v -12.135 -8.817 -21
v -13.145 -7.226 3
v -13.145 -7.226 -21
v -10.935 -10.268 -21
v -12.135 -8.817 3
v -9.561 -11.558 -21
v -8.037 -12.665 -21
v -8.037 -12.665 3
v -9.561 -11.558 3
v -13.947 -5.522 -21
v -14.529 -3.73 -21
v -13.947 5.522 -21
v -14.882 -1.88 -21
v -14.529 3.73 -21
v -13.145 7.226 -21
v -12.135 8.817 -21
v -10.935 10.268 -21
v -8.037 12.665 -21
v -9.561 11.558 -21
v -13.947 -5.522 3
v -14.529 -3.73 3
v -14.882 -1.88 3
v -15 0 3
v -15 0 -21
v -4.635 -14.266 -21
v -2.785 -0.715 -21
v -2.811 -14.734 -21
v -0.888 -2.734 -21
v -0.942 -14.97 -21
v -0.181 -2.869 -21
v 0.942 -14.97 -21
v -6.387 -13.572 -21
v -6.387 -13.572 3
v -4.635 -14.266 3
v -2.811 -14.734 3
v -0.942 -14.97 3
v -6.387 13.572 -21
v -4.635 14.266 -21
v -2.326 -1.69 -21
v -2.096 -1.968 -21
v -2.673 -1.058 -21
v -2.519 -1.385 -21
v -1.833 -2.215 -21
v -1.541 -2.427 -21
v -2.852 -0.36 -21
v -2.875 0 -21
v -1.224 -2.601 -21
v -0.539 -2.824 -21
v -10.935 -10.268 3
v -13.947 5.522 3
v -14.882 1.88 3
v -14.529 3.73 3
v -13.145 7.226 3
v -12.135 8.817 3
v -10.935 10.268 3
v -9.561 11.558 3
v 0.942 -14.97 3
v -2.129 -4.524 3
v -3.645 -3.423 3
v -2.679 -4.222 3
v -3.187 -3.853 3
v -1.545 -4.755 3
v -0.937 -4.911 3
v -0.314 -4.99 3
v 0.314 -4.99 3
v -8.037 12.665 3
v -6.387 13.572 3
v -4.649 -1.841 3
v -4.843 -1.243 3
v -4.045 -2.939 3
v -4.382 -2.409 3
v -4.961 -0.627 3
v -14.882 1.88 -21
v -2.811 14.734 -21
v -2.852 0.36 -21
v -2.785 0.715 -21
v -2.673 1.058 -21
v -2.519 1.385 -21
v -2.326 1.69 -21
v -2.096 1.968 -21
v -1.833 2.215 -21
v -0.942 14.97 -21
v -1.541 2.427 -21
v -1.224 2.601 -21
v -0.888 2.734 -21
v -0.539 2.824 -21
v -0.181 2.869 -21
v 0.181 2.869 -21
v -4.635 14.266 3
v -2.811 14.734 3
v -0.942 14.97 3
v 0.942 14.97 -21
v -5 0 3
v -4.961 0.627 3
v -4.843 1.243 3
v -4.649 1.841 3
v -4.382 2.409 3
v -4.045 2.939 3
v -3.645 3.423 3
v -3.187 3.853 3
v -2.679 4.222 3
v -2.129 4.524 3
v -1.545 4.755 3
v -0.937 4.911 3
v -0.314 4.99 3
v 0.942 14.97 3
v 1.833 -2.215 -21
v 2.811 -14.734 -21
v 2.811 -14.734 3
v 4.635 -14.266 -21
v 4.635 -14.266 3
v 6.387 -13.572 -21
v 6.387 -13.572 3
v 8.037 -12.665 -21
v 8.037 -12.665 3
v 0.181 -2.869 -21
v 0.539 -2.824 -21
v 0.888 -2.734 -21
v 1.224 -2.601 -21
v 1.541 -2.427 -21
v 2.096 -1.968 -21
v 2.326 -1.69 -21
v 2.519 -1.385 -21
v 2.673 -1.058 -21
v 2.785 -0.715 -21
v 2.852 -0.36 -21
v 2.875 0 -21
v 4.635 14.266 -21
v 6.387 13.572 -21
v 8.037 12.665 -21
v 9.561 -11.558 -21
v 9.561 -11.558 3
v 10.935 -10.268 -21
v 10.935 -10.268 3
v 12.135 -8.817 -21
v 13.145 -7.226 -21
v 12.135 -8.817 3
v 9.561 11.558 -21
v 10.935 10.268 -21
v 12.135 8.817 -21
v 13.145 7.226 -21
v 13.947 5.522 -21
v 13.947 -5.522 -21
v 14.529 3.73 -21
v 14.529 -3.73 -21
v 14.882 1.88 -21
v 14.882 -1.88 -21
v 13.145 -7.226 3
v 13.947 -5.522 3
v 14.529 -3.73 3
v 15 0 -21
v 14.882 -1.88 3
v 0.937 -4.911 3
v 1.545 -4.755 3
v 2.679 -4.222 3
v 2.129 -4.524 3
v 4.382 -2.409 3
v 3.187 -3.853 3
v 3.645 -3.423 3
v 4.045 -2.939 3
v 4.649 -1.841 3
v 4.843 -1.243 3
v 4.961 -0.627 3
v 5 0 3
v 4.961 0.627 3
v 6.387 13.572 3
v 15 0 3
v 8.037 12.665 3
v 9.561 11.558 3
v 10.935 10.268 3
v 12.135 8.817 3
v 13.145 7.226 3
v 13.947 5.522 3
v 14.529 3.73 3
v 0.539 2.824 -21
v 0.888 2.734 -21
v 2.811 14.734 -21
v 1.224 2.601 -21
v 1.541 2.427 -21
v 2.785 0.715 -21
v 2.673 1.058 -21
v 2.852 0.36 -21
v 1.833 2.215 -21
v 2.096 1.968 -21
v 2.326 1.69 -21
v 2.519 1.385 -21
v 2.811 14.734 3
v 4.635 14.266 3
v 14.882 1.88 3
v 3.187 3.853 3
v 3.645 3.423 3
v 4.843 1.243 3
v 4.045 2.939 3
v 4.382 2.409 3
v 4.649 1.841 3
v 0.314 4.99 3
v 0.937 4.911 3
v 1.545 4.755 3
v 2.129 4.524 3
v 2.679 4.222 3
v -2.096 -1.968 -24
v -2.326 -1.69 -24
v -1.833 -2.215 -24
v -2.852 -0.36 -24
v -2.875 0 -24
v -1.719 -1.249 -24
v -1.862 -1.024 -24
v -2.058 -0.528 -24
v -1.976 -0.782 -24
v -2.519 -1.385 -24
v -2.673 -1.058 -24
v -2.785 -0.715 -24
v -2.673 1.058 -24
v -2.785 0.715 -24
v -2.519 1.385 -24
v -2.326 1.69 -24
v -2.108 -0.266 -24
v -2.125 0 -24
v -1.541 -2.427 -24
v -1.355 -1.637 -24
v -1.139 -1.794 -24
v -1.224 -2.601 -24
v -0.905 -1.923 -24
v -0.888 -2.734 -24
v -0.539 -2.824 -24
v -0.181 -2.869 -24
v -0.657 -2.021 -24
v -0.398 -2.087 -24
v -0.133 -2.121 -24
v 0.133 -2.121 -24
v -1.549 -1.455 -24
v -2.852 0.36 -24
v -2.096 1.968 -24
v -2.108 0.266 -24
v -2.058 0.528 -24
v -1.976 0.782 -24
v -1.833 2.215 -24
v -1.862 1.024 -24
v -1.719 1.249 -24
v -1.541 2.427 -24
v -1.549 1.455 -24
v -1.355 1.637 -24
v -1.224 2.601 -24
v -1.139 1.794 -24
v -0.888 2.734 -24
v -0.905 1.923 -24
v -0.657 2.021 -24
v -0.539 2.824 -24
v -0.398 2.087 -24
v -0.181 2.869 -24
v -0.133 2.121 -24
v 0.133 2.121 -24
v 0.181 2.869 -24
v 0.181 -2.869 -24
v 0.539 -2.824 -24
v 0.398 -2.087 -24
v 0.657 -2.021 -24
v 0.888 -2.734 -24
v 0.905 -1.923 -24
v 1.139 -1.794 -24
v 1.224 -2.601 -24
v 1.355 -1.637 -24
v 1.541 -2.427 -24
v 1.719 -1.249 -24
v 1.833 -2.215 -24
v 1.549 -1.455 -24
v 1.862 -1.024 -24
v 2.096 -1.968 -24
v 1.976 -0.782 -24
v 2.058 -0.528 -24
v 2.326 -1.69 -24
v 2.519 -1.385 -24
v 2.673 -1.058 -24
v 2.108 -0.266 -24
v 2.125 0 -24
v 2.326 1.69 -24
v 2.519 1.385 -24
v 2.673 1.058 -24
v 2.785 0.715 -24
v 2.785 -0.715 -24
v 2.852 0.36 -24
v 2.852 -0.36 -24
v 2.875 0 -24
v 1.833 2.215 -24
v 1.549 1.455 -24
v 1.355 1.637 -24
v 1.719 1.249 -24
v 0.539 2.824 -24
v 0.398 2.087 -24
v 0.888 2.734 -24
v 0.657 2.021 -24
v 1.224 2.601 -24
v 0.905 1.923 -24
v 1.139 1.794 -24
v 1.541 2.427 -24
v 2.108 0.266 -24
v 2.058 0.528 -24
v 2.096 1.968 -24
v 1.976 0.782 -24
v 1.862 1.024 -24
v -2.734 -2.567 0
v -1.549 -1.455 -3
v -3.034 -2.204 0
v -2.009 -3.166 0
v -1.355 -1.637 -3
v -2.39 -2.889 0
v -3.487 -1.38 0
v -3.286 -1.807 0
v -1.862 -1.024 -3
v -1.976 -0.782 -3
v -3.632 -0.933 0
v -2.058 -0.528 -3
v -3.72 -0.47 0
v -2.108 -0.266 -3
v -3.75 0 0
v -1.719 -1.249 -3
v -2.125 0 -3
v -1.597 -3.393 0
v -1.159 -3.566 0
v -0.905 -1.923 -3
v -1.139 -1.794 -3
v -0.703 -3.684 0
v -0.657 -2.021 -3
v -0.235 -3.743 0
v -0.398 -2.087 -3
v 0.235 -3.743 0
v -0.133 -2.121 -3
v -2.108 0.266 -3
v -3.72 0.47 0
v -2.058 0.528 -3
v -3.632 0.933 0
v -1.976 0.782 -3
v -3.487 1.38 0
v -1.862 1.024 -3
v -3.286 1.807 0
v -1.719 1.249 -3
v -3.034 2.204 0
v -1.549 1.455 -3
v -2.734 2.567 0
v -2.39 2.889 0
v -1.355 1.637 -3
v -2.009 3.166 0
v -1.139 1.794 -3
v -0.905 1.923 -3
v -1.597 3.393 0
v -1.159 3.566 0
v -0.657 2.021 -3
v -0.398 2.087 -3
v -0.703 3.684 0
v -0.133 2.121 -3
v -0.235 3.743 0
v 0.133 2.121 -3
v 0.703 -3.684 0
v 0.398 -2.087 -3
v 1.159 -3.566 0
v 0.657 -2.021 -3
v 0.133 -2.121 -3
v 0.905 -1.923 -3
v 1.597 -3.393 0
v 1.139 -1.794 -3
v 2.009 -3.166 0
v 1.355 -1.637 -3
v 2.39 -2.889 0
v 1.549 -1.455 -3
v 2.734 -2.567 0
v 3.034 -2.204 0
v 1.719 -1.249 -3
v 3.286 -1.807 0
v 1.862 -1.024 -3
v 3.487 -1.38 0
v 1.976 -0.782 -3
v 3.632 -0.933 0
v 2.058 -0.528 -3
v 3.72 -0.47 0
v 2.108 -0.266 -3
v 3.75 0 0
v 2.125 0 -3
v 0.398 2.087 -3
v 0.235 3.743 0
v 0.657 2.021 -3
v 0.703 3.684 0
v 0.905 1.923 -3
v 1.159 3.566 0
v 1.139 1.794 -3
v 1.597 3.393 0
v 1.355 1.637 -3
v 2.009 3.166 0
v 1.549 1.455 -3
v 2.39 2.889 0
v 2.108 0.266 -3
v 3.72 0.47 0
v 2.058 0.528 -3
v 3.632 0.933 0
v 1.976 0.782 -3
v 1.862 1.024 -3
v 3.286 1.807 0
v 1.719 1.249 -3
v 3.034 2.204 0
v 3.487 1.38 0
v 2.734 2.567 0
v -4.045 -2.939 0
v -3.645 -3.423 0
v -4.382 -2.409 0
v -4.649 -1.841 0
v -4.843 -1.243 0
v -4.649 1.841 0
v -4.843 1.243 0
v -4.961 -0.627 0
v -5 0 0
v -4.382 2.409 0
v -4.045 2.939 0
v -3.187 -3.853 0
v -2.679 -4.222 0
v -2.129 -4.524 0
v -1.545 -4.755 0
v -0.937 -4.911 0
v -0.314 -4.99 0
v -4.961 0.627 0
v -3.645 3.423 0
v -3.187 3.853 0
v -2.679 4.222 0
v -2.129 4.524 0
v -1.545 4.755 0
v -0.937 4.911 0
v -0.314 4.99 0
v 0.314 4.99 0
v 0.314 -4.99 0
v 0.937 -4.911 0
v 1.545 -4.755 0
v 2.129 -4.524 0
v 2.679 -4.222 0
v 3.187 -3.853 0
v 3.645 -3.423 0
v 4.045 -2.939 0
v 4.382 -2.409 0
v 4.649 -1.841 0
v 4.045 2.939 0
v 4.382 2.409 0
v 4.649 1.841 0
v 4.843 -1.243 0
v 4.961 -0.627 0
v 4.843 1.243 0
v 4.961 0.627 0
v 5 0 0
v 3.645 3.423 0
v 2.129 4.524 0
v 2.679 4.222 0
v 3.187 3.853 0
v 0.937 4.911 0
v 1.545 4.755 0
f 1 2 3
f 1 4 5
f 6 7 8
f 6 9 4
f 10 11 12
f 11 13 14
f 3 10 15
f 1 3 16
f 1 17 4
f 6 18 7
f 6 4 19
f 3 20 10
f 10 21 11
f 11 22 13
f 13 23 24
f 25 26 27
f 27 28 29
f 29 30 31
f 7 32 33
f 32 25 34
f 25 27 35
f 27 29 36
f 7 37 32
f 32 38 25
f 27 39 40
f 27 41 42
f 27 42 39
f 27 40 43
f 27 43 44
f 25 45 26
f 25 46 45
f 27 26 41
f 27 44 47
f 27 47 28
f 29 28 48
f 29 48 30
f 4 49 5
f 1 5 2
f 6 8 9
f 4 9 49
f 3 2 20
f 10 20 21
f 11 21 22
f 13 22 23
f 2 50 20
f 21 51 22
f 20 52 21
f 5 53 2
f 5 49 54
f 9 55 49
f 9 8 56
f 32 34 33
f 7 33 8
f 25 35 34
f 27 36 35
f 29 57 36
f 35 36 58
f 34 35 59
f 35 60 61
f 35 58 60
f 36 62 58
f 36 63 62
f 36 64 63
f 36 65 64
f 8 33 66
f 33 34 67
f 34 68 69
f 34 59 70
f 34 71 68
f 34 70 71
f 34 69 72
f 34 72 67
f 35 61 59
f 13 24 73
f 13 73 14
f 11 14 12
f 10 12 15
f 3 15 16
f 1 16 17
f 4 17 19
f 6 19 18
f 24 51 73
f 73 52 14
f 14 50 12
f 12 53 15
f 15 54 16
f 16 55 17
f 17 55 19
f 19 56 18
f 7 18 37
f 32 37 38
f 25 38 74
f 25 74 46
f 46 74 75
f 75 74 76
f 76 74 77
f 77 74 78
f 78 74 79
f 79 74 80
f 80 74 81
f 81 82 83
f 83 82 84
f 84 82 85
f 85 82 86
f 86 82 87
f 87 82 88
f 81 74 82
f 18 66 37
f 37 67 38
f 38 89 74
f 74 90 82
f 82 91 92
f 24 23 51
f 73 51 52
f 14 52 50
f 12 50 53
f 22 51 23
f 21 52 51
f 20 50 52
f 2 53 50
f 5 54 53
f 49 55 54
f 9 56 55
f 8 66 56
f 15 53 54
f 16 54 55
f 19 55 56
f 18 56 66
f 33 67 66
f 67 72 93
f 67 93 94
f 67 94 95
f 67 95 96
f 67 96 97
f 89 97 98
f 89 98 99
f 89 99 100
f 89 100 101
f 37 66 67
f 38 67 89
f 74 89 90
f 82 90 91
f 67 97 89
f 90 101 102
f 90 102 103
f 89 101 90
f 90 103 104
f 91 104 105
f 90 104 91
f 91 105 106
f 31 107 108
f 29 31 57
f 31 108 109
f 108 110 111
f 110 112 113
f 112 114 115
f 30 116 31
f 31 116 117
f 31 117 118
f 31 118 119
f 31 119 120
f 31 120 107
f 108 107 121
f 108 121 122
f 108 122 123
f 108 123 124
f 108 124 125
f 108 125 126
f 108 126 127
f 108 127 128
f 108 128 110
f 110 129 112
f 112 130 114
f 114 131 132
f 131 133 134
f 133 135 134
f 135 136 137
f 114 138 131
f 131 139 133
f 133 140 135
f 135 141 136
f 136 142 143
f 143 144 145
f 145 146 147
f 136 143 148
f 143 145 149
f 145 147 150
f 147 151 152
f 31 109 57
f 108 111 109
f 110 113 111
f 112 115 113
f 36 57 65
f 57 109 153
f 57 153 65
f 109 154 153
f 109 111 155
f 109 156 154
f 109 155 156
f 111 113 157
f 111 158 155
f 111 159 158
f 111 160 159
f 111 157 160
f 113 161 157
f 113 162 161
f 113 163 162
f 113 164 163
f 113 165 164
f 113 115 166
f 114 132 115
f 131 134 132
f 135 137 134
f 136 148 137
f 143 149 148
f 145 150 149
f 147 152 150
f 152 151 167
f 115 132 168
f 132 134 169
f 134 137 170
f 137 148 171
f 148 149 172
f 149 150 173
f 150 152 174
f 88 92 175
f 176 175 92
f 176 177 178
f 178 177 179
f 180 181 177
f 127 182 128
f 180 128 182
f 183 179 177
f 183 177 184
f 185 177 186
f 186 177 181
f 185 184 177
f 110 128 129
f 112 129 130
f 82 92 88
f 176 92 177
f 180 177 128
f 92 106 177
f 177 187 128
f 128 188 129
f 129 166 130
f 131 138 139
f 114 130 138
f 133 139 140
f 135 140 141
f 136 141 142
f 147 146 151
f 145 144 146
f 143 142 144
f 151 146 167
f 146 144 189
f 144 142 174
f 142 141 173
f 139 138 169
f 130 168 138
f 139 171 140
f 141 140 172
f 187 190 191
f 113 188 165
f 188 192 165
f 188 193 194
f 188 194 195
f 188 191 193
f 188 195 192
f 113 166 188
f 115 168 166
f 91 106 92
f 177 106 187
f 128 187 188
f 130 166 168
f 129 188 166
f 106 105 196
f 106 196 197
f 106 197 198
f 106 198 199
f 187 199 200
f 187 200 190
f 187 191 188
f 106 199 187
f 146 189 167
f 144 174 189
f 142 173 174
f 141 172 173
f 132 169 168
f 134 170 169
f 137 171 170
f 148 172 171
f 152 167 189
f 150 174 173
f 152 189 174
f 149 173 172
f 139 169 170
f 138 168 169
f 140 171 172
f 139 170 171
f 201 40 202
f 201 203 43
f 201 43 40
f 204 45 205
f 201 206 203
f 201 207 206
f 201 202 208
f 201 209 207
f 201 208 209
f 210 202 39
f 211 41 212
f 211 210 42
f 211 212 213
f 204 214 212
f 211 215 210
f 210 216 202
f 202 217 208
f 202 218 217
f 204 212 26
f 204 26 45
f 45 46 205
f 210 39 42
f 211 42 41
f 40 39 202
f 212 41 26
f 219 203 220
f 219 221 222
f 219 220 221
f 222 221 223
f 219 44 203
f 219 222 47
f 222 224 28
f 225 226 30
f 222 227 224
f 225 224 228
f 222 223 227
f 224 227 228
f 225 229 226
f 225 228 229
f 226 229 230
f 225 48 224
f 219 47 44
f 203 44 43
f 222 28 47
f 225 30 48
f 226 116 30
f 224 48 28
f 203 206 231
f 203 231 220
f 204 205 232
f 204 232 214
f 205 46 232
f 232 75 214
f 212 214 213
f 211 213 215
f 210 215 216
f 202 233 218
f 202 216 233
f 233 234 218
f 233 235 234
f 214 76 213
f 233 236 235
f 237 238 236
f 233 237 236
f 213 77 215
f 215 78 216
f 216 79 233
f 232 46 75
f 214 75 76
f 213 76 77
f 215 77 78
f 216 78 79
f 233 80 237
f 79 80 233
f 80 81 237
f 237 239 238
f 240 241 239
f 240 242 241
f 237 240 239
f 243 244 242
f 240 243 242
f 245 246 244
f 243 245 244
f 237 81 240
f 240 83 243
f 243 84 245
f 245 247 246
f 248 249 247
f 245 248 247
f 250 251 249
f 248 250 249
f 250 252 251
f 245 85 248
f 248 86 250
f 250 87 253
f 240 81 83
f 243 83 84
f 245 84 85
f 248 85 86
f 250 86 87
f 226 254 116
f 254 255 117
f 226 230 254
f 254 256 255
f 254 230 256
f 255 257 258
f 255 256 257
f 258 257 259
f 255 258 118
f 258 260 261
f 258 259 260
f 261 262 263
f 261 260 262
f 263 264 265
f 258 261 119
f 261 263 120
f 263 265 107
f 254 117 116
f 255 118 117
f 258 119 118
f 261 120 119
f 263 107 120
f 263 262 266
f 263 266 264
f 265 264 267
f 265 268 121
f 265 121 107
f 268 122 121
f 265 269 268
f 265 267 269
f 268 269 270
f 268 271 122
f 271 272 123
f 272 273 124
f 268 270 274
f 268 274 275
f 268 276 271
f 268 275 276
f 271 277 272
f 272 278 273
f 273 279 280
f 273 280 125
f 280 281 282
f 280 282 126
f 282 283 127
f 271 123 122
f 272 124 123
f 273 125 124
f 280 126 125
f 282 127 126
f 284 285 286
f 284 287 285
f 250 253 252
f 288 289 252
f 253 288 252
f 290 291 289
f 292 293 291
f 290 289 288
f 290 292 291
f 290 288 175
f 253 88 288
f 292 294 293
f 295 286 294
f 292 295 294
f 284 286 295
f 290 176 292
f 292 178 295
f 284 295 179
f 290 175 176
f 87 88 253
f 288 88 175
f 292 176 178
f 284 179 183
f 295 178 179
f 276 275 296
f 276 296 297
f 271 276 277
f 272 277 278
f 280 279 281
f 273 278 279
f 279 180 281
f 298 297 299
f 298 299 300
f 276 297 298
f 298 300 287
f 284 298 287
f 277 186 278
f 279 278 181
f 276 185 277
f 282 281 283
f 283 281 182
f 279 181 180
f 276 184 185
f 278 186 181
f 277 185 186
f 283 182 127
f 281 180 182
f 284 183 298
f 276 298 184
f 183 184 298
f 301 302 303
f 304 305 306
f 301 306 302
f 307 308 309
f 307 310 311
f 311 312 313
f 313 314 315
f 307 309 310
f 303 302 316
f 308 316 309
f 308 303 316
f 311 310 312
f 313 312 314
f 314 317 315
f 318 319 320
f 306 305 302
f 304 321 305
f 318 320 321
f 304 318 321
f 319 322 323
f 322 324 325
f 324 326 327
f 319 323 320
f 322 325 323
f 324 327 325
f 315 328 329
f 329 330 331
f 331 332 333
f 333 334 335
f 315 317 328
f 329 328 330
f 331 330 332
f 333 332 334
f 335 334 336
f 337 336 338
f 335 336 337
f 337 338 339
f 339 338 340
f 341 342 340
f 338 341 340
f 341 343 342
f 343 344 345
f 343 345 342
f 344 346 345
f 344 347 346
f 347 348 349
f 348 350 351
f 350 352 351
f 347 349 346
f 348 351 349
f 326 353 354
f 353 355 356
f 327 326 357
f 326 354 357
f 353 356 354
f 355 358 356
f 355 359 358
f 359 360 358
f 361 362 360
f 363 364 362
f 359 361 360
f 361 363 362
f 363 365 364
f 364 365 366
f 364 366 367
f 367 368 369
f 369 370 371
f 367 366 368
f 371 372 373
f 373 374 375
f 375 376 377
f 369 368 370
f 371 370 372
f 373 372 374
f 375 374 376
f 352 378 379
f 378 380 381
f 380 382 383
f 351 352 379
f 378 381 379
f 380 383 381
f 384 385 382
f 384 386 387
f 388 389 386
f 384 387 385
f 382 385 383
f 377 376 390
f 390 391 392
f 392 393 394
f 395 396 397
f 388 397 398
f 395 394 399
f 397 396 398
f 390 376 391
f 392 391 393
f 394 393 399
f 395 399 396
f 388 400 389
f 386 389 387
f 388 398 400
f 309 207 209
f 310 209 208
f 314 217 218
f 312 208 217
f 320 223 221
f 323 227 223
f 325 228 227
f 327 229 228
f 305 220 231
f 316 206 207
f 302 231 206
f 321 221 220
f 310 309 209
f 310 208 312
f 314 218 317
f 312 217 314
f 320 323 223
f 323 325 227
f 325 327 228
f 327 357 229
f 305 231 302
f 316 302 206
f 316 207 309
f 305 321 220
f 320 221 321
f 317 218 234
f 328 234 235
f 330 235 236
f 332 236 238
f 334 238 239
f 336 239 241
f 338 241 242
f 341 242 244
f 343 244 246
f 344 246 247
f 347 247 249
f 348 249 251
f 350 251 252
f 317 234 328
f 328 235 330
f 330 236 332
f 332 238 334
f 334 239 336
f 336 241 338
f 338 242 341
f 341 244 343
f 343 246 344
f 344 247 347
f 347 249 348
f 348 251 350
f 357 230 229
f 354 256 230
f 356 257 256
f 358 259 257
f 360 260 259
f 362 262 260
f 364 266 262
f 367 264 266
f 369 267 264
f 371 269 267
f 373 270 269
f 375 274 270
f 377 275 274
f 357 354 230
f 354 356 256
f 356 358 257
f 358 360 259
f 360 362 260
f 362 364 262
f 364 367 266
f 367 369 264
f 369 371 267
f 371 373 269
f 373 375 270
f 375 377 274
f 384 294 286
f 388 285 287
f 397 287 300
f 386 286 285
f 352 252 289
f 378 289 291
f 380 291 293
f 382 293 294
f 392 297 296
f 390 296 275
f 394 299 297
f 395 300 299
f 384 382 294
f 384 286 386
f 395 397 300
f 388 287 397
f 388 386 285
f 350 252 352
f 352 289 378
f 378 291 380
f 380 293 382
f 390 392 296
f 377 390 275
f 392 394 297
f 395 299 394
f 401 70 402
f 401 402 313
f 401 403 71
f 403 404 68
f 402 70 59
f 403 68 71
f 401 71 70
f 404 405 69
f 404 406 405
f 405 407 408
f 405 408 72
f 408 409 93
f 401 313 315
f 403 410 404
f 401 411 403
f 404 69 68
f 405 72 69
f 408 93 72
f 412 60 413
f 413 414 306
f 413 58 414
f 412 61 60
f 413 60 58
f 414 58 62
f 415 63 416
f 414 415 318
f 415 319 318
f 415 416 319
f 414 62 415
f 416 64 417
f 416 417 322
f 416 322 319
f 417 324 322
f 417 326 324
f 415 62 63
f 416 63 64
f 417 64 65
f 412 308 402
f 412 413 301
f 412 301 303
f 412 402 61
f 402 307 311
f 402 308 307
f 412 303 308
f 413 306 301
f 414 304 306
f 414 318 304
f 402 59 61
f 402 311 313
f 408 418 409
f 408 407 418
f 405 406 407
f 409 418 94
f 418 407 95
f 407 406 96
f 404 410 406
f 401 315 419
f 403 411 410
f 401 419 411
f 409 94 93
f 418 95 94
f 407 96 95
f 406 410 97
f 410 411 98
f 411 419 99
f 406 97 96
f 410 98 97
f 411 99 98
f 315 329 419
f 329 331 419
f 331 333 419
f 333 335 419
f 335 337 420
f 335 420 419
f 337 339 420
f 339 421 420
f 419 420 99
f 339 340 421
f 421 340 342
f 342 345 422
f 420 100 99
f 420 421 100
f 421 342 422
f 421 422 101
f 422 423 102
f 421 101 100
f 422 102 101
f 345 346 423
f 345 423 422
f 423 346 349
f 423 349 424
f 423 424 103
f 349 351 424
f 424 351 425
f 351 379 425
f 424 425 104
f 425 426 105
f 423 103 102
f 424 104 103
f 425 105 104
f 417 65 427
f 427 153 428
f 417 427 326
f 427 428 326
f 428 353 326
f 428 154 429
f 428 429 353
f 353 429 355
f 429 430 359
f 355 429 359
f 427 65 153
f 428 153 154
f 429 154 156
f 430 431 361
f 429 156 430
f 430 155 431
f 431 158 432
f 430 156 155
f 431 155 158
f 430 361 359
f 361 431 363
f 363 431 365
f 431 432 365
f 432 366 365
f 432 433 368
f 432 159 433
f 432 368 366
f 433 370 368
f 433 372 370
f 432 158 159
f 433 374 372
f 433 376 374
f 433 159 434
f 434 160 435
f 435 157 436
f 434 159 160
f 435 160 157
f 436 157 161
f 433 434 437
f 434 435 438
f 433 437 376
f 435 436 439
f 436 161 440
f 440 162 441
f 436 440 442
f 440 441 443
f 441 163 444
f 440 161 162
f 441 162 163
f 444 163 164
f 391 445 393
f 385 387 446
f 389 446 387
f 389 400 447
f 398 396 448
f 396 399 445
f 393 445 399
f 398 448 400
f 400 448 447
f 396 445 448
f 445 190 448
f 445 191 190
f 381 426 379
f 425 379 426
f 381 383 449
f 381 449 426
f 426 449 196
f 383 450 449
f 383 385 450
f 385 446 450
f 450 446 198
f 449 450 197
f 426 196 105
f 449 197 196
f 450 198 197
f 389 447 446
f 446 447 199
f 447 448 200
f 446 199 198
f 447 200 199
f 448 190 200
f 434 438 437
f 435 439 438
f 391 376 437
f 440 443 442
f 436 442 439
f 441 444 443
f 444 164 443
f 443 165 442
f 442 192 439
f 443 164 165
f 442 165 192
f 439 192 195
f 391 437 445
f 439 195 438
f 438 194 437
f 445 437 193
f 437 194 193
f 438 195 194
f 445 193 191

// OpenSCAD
$fn = 50;

difference() {
	union() {
		translate(v = [0, 0, -21.0]) {
			cylinder(h = 24, r = 15.0);
		}
		#translate(v = [0, 0, -24.0]) {
			cylinder(h = 24, r = 2.875);
		}
	}
	union() {
		translate(v = [0, 0, 0]) {
			rotate(a = [0, 0, 0]) {
				difference() {
					union() {
						translate(v = [0, 0, -24.0]) {
							cylinder(h = 24, r = 2.0);
						}
						translate(v = [0, 0, -3]) {
							cylinder(h = 3, r1 = 2.125, r2 = 3.75);
						}
						translate(v = [0, 0, -24.0]) {
							cylinder(h = 24, r = 2.125);
						}
						translate(v = [0, 0, -24.0]) {
							cylinder(h = 24, r = 2.0);
						}
					}
					union();
				}
			}
		}
		#cylinder(h = 3, r = 5.0);
	}
}
